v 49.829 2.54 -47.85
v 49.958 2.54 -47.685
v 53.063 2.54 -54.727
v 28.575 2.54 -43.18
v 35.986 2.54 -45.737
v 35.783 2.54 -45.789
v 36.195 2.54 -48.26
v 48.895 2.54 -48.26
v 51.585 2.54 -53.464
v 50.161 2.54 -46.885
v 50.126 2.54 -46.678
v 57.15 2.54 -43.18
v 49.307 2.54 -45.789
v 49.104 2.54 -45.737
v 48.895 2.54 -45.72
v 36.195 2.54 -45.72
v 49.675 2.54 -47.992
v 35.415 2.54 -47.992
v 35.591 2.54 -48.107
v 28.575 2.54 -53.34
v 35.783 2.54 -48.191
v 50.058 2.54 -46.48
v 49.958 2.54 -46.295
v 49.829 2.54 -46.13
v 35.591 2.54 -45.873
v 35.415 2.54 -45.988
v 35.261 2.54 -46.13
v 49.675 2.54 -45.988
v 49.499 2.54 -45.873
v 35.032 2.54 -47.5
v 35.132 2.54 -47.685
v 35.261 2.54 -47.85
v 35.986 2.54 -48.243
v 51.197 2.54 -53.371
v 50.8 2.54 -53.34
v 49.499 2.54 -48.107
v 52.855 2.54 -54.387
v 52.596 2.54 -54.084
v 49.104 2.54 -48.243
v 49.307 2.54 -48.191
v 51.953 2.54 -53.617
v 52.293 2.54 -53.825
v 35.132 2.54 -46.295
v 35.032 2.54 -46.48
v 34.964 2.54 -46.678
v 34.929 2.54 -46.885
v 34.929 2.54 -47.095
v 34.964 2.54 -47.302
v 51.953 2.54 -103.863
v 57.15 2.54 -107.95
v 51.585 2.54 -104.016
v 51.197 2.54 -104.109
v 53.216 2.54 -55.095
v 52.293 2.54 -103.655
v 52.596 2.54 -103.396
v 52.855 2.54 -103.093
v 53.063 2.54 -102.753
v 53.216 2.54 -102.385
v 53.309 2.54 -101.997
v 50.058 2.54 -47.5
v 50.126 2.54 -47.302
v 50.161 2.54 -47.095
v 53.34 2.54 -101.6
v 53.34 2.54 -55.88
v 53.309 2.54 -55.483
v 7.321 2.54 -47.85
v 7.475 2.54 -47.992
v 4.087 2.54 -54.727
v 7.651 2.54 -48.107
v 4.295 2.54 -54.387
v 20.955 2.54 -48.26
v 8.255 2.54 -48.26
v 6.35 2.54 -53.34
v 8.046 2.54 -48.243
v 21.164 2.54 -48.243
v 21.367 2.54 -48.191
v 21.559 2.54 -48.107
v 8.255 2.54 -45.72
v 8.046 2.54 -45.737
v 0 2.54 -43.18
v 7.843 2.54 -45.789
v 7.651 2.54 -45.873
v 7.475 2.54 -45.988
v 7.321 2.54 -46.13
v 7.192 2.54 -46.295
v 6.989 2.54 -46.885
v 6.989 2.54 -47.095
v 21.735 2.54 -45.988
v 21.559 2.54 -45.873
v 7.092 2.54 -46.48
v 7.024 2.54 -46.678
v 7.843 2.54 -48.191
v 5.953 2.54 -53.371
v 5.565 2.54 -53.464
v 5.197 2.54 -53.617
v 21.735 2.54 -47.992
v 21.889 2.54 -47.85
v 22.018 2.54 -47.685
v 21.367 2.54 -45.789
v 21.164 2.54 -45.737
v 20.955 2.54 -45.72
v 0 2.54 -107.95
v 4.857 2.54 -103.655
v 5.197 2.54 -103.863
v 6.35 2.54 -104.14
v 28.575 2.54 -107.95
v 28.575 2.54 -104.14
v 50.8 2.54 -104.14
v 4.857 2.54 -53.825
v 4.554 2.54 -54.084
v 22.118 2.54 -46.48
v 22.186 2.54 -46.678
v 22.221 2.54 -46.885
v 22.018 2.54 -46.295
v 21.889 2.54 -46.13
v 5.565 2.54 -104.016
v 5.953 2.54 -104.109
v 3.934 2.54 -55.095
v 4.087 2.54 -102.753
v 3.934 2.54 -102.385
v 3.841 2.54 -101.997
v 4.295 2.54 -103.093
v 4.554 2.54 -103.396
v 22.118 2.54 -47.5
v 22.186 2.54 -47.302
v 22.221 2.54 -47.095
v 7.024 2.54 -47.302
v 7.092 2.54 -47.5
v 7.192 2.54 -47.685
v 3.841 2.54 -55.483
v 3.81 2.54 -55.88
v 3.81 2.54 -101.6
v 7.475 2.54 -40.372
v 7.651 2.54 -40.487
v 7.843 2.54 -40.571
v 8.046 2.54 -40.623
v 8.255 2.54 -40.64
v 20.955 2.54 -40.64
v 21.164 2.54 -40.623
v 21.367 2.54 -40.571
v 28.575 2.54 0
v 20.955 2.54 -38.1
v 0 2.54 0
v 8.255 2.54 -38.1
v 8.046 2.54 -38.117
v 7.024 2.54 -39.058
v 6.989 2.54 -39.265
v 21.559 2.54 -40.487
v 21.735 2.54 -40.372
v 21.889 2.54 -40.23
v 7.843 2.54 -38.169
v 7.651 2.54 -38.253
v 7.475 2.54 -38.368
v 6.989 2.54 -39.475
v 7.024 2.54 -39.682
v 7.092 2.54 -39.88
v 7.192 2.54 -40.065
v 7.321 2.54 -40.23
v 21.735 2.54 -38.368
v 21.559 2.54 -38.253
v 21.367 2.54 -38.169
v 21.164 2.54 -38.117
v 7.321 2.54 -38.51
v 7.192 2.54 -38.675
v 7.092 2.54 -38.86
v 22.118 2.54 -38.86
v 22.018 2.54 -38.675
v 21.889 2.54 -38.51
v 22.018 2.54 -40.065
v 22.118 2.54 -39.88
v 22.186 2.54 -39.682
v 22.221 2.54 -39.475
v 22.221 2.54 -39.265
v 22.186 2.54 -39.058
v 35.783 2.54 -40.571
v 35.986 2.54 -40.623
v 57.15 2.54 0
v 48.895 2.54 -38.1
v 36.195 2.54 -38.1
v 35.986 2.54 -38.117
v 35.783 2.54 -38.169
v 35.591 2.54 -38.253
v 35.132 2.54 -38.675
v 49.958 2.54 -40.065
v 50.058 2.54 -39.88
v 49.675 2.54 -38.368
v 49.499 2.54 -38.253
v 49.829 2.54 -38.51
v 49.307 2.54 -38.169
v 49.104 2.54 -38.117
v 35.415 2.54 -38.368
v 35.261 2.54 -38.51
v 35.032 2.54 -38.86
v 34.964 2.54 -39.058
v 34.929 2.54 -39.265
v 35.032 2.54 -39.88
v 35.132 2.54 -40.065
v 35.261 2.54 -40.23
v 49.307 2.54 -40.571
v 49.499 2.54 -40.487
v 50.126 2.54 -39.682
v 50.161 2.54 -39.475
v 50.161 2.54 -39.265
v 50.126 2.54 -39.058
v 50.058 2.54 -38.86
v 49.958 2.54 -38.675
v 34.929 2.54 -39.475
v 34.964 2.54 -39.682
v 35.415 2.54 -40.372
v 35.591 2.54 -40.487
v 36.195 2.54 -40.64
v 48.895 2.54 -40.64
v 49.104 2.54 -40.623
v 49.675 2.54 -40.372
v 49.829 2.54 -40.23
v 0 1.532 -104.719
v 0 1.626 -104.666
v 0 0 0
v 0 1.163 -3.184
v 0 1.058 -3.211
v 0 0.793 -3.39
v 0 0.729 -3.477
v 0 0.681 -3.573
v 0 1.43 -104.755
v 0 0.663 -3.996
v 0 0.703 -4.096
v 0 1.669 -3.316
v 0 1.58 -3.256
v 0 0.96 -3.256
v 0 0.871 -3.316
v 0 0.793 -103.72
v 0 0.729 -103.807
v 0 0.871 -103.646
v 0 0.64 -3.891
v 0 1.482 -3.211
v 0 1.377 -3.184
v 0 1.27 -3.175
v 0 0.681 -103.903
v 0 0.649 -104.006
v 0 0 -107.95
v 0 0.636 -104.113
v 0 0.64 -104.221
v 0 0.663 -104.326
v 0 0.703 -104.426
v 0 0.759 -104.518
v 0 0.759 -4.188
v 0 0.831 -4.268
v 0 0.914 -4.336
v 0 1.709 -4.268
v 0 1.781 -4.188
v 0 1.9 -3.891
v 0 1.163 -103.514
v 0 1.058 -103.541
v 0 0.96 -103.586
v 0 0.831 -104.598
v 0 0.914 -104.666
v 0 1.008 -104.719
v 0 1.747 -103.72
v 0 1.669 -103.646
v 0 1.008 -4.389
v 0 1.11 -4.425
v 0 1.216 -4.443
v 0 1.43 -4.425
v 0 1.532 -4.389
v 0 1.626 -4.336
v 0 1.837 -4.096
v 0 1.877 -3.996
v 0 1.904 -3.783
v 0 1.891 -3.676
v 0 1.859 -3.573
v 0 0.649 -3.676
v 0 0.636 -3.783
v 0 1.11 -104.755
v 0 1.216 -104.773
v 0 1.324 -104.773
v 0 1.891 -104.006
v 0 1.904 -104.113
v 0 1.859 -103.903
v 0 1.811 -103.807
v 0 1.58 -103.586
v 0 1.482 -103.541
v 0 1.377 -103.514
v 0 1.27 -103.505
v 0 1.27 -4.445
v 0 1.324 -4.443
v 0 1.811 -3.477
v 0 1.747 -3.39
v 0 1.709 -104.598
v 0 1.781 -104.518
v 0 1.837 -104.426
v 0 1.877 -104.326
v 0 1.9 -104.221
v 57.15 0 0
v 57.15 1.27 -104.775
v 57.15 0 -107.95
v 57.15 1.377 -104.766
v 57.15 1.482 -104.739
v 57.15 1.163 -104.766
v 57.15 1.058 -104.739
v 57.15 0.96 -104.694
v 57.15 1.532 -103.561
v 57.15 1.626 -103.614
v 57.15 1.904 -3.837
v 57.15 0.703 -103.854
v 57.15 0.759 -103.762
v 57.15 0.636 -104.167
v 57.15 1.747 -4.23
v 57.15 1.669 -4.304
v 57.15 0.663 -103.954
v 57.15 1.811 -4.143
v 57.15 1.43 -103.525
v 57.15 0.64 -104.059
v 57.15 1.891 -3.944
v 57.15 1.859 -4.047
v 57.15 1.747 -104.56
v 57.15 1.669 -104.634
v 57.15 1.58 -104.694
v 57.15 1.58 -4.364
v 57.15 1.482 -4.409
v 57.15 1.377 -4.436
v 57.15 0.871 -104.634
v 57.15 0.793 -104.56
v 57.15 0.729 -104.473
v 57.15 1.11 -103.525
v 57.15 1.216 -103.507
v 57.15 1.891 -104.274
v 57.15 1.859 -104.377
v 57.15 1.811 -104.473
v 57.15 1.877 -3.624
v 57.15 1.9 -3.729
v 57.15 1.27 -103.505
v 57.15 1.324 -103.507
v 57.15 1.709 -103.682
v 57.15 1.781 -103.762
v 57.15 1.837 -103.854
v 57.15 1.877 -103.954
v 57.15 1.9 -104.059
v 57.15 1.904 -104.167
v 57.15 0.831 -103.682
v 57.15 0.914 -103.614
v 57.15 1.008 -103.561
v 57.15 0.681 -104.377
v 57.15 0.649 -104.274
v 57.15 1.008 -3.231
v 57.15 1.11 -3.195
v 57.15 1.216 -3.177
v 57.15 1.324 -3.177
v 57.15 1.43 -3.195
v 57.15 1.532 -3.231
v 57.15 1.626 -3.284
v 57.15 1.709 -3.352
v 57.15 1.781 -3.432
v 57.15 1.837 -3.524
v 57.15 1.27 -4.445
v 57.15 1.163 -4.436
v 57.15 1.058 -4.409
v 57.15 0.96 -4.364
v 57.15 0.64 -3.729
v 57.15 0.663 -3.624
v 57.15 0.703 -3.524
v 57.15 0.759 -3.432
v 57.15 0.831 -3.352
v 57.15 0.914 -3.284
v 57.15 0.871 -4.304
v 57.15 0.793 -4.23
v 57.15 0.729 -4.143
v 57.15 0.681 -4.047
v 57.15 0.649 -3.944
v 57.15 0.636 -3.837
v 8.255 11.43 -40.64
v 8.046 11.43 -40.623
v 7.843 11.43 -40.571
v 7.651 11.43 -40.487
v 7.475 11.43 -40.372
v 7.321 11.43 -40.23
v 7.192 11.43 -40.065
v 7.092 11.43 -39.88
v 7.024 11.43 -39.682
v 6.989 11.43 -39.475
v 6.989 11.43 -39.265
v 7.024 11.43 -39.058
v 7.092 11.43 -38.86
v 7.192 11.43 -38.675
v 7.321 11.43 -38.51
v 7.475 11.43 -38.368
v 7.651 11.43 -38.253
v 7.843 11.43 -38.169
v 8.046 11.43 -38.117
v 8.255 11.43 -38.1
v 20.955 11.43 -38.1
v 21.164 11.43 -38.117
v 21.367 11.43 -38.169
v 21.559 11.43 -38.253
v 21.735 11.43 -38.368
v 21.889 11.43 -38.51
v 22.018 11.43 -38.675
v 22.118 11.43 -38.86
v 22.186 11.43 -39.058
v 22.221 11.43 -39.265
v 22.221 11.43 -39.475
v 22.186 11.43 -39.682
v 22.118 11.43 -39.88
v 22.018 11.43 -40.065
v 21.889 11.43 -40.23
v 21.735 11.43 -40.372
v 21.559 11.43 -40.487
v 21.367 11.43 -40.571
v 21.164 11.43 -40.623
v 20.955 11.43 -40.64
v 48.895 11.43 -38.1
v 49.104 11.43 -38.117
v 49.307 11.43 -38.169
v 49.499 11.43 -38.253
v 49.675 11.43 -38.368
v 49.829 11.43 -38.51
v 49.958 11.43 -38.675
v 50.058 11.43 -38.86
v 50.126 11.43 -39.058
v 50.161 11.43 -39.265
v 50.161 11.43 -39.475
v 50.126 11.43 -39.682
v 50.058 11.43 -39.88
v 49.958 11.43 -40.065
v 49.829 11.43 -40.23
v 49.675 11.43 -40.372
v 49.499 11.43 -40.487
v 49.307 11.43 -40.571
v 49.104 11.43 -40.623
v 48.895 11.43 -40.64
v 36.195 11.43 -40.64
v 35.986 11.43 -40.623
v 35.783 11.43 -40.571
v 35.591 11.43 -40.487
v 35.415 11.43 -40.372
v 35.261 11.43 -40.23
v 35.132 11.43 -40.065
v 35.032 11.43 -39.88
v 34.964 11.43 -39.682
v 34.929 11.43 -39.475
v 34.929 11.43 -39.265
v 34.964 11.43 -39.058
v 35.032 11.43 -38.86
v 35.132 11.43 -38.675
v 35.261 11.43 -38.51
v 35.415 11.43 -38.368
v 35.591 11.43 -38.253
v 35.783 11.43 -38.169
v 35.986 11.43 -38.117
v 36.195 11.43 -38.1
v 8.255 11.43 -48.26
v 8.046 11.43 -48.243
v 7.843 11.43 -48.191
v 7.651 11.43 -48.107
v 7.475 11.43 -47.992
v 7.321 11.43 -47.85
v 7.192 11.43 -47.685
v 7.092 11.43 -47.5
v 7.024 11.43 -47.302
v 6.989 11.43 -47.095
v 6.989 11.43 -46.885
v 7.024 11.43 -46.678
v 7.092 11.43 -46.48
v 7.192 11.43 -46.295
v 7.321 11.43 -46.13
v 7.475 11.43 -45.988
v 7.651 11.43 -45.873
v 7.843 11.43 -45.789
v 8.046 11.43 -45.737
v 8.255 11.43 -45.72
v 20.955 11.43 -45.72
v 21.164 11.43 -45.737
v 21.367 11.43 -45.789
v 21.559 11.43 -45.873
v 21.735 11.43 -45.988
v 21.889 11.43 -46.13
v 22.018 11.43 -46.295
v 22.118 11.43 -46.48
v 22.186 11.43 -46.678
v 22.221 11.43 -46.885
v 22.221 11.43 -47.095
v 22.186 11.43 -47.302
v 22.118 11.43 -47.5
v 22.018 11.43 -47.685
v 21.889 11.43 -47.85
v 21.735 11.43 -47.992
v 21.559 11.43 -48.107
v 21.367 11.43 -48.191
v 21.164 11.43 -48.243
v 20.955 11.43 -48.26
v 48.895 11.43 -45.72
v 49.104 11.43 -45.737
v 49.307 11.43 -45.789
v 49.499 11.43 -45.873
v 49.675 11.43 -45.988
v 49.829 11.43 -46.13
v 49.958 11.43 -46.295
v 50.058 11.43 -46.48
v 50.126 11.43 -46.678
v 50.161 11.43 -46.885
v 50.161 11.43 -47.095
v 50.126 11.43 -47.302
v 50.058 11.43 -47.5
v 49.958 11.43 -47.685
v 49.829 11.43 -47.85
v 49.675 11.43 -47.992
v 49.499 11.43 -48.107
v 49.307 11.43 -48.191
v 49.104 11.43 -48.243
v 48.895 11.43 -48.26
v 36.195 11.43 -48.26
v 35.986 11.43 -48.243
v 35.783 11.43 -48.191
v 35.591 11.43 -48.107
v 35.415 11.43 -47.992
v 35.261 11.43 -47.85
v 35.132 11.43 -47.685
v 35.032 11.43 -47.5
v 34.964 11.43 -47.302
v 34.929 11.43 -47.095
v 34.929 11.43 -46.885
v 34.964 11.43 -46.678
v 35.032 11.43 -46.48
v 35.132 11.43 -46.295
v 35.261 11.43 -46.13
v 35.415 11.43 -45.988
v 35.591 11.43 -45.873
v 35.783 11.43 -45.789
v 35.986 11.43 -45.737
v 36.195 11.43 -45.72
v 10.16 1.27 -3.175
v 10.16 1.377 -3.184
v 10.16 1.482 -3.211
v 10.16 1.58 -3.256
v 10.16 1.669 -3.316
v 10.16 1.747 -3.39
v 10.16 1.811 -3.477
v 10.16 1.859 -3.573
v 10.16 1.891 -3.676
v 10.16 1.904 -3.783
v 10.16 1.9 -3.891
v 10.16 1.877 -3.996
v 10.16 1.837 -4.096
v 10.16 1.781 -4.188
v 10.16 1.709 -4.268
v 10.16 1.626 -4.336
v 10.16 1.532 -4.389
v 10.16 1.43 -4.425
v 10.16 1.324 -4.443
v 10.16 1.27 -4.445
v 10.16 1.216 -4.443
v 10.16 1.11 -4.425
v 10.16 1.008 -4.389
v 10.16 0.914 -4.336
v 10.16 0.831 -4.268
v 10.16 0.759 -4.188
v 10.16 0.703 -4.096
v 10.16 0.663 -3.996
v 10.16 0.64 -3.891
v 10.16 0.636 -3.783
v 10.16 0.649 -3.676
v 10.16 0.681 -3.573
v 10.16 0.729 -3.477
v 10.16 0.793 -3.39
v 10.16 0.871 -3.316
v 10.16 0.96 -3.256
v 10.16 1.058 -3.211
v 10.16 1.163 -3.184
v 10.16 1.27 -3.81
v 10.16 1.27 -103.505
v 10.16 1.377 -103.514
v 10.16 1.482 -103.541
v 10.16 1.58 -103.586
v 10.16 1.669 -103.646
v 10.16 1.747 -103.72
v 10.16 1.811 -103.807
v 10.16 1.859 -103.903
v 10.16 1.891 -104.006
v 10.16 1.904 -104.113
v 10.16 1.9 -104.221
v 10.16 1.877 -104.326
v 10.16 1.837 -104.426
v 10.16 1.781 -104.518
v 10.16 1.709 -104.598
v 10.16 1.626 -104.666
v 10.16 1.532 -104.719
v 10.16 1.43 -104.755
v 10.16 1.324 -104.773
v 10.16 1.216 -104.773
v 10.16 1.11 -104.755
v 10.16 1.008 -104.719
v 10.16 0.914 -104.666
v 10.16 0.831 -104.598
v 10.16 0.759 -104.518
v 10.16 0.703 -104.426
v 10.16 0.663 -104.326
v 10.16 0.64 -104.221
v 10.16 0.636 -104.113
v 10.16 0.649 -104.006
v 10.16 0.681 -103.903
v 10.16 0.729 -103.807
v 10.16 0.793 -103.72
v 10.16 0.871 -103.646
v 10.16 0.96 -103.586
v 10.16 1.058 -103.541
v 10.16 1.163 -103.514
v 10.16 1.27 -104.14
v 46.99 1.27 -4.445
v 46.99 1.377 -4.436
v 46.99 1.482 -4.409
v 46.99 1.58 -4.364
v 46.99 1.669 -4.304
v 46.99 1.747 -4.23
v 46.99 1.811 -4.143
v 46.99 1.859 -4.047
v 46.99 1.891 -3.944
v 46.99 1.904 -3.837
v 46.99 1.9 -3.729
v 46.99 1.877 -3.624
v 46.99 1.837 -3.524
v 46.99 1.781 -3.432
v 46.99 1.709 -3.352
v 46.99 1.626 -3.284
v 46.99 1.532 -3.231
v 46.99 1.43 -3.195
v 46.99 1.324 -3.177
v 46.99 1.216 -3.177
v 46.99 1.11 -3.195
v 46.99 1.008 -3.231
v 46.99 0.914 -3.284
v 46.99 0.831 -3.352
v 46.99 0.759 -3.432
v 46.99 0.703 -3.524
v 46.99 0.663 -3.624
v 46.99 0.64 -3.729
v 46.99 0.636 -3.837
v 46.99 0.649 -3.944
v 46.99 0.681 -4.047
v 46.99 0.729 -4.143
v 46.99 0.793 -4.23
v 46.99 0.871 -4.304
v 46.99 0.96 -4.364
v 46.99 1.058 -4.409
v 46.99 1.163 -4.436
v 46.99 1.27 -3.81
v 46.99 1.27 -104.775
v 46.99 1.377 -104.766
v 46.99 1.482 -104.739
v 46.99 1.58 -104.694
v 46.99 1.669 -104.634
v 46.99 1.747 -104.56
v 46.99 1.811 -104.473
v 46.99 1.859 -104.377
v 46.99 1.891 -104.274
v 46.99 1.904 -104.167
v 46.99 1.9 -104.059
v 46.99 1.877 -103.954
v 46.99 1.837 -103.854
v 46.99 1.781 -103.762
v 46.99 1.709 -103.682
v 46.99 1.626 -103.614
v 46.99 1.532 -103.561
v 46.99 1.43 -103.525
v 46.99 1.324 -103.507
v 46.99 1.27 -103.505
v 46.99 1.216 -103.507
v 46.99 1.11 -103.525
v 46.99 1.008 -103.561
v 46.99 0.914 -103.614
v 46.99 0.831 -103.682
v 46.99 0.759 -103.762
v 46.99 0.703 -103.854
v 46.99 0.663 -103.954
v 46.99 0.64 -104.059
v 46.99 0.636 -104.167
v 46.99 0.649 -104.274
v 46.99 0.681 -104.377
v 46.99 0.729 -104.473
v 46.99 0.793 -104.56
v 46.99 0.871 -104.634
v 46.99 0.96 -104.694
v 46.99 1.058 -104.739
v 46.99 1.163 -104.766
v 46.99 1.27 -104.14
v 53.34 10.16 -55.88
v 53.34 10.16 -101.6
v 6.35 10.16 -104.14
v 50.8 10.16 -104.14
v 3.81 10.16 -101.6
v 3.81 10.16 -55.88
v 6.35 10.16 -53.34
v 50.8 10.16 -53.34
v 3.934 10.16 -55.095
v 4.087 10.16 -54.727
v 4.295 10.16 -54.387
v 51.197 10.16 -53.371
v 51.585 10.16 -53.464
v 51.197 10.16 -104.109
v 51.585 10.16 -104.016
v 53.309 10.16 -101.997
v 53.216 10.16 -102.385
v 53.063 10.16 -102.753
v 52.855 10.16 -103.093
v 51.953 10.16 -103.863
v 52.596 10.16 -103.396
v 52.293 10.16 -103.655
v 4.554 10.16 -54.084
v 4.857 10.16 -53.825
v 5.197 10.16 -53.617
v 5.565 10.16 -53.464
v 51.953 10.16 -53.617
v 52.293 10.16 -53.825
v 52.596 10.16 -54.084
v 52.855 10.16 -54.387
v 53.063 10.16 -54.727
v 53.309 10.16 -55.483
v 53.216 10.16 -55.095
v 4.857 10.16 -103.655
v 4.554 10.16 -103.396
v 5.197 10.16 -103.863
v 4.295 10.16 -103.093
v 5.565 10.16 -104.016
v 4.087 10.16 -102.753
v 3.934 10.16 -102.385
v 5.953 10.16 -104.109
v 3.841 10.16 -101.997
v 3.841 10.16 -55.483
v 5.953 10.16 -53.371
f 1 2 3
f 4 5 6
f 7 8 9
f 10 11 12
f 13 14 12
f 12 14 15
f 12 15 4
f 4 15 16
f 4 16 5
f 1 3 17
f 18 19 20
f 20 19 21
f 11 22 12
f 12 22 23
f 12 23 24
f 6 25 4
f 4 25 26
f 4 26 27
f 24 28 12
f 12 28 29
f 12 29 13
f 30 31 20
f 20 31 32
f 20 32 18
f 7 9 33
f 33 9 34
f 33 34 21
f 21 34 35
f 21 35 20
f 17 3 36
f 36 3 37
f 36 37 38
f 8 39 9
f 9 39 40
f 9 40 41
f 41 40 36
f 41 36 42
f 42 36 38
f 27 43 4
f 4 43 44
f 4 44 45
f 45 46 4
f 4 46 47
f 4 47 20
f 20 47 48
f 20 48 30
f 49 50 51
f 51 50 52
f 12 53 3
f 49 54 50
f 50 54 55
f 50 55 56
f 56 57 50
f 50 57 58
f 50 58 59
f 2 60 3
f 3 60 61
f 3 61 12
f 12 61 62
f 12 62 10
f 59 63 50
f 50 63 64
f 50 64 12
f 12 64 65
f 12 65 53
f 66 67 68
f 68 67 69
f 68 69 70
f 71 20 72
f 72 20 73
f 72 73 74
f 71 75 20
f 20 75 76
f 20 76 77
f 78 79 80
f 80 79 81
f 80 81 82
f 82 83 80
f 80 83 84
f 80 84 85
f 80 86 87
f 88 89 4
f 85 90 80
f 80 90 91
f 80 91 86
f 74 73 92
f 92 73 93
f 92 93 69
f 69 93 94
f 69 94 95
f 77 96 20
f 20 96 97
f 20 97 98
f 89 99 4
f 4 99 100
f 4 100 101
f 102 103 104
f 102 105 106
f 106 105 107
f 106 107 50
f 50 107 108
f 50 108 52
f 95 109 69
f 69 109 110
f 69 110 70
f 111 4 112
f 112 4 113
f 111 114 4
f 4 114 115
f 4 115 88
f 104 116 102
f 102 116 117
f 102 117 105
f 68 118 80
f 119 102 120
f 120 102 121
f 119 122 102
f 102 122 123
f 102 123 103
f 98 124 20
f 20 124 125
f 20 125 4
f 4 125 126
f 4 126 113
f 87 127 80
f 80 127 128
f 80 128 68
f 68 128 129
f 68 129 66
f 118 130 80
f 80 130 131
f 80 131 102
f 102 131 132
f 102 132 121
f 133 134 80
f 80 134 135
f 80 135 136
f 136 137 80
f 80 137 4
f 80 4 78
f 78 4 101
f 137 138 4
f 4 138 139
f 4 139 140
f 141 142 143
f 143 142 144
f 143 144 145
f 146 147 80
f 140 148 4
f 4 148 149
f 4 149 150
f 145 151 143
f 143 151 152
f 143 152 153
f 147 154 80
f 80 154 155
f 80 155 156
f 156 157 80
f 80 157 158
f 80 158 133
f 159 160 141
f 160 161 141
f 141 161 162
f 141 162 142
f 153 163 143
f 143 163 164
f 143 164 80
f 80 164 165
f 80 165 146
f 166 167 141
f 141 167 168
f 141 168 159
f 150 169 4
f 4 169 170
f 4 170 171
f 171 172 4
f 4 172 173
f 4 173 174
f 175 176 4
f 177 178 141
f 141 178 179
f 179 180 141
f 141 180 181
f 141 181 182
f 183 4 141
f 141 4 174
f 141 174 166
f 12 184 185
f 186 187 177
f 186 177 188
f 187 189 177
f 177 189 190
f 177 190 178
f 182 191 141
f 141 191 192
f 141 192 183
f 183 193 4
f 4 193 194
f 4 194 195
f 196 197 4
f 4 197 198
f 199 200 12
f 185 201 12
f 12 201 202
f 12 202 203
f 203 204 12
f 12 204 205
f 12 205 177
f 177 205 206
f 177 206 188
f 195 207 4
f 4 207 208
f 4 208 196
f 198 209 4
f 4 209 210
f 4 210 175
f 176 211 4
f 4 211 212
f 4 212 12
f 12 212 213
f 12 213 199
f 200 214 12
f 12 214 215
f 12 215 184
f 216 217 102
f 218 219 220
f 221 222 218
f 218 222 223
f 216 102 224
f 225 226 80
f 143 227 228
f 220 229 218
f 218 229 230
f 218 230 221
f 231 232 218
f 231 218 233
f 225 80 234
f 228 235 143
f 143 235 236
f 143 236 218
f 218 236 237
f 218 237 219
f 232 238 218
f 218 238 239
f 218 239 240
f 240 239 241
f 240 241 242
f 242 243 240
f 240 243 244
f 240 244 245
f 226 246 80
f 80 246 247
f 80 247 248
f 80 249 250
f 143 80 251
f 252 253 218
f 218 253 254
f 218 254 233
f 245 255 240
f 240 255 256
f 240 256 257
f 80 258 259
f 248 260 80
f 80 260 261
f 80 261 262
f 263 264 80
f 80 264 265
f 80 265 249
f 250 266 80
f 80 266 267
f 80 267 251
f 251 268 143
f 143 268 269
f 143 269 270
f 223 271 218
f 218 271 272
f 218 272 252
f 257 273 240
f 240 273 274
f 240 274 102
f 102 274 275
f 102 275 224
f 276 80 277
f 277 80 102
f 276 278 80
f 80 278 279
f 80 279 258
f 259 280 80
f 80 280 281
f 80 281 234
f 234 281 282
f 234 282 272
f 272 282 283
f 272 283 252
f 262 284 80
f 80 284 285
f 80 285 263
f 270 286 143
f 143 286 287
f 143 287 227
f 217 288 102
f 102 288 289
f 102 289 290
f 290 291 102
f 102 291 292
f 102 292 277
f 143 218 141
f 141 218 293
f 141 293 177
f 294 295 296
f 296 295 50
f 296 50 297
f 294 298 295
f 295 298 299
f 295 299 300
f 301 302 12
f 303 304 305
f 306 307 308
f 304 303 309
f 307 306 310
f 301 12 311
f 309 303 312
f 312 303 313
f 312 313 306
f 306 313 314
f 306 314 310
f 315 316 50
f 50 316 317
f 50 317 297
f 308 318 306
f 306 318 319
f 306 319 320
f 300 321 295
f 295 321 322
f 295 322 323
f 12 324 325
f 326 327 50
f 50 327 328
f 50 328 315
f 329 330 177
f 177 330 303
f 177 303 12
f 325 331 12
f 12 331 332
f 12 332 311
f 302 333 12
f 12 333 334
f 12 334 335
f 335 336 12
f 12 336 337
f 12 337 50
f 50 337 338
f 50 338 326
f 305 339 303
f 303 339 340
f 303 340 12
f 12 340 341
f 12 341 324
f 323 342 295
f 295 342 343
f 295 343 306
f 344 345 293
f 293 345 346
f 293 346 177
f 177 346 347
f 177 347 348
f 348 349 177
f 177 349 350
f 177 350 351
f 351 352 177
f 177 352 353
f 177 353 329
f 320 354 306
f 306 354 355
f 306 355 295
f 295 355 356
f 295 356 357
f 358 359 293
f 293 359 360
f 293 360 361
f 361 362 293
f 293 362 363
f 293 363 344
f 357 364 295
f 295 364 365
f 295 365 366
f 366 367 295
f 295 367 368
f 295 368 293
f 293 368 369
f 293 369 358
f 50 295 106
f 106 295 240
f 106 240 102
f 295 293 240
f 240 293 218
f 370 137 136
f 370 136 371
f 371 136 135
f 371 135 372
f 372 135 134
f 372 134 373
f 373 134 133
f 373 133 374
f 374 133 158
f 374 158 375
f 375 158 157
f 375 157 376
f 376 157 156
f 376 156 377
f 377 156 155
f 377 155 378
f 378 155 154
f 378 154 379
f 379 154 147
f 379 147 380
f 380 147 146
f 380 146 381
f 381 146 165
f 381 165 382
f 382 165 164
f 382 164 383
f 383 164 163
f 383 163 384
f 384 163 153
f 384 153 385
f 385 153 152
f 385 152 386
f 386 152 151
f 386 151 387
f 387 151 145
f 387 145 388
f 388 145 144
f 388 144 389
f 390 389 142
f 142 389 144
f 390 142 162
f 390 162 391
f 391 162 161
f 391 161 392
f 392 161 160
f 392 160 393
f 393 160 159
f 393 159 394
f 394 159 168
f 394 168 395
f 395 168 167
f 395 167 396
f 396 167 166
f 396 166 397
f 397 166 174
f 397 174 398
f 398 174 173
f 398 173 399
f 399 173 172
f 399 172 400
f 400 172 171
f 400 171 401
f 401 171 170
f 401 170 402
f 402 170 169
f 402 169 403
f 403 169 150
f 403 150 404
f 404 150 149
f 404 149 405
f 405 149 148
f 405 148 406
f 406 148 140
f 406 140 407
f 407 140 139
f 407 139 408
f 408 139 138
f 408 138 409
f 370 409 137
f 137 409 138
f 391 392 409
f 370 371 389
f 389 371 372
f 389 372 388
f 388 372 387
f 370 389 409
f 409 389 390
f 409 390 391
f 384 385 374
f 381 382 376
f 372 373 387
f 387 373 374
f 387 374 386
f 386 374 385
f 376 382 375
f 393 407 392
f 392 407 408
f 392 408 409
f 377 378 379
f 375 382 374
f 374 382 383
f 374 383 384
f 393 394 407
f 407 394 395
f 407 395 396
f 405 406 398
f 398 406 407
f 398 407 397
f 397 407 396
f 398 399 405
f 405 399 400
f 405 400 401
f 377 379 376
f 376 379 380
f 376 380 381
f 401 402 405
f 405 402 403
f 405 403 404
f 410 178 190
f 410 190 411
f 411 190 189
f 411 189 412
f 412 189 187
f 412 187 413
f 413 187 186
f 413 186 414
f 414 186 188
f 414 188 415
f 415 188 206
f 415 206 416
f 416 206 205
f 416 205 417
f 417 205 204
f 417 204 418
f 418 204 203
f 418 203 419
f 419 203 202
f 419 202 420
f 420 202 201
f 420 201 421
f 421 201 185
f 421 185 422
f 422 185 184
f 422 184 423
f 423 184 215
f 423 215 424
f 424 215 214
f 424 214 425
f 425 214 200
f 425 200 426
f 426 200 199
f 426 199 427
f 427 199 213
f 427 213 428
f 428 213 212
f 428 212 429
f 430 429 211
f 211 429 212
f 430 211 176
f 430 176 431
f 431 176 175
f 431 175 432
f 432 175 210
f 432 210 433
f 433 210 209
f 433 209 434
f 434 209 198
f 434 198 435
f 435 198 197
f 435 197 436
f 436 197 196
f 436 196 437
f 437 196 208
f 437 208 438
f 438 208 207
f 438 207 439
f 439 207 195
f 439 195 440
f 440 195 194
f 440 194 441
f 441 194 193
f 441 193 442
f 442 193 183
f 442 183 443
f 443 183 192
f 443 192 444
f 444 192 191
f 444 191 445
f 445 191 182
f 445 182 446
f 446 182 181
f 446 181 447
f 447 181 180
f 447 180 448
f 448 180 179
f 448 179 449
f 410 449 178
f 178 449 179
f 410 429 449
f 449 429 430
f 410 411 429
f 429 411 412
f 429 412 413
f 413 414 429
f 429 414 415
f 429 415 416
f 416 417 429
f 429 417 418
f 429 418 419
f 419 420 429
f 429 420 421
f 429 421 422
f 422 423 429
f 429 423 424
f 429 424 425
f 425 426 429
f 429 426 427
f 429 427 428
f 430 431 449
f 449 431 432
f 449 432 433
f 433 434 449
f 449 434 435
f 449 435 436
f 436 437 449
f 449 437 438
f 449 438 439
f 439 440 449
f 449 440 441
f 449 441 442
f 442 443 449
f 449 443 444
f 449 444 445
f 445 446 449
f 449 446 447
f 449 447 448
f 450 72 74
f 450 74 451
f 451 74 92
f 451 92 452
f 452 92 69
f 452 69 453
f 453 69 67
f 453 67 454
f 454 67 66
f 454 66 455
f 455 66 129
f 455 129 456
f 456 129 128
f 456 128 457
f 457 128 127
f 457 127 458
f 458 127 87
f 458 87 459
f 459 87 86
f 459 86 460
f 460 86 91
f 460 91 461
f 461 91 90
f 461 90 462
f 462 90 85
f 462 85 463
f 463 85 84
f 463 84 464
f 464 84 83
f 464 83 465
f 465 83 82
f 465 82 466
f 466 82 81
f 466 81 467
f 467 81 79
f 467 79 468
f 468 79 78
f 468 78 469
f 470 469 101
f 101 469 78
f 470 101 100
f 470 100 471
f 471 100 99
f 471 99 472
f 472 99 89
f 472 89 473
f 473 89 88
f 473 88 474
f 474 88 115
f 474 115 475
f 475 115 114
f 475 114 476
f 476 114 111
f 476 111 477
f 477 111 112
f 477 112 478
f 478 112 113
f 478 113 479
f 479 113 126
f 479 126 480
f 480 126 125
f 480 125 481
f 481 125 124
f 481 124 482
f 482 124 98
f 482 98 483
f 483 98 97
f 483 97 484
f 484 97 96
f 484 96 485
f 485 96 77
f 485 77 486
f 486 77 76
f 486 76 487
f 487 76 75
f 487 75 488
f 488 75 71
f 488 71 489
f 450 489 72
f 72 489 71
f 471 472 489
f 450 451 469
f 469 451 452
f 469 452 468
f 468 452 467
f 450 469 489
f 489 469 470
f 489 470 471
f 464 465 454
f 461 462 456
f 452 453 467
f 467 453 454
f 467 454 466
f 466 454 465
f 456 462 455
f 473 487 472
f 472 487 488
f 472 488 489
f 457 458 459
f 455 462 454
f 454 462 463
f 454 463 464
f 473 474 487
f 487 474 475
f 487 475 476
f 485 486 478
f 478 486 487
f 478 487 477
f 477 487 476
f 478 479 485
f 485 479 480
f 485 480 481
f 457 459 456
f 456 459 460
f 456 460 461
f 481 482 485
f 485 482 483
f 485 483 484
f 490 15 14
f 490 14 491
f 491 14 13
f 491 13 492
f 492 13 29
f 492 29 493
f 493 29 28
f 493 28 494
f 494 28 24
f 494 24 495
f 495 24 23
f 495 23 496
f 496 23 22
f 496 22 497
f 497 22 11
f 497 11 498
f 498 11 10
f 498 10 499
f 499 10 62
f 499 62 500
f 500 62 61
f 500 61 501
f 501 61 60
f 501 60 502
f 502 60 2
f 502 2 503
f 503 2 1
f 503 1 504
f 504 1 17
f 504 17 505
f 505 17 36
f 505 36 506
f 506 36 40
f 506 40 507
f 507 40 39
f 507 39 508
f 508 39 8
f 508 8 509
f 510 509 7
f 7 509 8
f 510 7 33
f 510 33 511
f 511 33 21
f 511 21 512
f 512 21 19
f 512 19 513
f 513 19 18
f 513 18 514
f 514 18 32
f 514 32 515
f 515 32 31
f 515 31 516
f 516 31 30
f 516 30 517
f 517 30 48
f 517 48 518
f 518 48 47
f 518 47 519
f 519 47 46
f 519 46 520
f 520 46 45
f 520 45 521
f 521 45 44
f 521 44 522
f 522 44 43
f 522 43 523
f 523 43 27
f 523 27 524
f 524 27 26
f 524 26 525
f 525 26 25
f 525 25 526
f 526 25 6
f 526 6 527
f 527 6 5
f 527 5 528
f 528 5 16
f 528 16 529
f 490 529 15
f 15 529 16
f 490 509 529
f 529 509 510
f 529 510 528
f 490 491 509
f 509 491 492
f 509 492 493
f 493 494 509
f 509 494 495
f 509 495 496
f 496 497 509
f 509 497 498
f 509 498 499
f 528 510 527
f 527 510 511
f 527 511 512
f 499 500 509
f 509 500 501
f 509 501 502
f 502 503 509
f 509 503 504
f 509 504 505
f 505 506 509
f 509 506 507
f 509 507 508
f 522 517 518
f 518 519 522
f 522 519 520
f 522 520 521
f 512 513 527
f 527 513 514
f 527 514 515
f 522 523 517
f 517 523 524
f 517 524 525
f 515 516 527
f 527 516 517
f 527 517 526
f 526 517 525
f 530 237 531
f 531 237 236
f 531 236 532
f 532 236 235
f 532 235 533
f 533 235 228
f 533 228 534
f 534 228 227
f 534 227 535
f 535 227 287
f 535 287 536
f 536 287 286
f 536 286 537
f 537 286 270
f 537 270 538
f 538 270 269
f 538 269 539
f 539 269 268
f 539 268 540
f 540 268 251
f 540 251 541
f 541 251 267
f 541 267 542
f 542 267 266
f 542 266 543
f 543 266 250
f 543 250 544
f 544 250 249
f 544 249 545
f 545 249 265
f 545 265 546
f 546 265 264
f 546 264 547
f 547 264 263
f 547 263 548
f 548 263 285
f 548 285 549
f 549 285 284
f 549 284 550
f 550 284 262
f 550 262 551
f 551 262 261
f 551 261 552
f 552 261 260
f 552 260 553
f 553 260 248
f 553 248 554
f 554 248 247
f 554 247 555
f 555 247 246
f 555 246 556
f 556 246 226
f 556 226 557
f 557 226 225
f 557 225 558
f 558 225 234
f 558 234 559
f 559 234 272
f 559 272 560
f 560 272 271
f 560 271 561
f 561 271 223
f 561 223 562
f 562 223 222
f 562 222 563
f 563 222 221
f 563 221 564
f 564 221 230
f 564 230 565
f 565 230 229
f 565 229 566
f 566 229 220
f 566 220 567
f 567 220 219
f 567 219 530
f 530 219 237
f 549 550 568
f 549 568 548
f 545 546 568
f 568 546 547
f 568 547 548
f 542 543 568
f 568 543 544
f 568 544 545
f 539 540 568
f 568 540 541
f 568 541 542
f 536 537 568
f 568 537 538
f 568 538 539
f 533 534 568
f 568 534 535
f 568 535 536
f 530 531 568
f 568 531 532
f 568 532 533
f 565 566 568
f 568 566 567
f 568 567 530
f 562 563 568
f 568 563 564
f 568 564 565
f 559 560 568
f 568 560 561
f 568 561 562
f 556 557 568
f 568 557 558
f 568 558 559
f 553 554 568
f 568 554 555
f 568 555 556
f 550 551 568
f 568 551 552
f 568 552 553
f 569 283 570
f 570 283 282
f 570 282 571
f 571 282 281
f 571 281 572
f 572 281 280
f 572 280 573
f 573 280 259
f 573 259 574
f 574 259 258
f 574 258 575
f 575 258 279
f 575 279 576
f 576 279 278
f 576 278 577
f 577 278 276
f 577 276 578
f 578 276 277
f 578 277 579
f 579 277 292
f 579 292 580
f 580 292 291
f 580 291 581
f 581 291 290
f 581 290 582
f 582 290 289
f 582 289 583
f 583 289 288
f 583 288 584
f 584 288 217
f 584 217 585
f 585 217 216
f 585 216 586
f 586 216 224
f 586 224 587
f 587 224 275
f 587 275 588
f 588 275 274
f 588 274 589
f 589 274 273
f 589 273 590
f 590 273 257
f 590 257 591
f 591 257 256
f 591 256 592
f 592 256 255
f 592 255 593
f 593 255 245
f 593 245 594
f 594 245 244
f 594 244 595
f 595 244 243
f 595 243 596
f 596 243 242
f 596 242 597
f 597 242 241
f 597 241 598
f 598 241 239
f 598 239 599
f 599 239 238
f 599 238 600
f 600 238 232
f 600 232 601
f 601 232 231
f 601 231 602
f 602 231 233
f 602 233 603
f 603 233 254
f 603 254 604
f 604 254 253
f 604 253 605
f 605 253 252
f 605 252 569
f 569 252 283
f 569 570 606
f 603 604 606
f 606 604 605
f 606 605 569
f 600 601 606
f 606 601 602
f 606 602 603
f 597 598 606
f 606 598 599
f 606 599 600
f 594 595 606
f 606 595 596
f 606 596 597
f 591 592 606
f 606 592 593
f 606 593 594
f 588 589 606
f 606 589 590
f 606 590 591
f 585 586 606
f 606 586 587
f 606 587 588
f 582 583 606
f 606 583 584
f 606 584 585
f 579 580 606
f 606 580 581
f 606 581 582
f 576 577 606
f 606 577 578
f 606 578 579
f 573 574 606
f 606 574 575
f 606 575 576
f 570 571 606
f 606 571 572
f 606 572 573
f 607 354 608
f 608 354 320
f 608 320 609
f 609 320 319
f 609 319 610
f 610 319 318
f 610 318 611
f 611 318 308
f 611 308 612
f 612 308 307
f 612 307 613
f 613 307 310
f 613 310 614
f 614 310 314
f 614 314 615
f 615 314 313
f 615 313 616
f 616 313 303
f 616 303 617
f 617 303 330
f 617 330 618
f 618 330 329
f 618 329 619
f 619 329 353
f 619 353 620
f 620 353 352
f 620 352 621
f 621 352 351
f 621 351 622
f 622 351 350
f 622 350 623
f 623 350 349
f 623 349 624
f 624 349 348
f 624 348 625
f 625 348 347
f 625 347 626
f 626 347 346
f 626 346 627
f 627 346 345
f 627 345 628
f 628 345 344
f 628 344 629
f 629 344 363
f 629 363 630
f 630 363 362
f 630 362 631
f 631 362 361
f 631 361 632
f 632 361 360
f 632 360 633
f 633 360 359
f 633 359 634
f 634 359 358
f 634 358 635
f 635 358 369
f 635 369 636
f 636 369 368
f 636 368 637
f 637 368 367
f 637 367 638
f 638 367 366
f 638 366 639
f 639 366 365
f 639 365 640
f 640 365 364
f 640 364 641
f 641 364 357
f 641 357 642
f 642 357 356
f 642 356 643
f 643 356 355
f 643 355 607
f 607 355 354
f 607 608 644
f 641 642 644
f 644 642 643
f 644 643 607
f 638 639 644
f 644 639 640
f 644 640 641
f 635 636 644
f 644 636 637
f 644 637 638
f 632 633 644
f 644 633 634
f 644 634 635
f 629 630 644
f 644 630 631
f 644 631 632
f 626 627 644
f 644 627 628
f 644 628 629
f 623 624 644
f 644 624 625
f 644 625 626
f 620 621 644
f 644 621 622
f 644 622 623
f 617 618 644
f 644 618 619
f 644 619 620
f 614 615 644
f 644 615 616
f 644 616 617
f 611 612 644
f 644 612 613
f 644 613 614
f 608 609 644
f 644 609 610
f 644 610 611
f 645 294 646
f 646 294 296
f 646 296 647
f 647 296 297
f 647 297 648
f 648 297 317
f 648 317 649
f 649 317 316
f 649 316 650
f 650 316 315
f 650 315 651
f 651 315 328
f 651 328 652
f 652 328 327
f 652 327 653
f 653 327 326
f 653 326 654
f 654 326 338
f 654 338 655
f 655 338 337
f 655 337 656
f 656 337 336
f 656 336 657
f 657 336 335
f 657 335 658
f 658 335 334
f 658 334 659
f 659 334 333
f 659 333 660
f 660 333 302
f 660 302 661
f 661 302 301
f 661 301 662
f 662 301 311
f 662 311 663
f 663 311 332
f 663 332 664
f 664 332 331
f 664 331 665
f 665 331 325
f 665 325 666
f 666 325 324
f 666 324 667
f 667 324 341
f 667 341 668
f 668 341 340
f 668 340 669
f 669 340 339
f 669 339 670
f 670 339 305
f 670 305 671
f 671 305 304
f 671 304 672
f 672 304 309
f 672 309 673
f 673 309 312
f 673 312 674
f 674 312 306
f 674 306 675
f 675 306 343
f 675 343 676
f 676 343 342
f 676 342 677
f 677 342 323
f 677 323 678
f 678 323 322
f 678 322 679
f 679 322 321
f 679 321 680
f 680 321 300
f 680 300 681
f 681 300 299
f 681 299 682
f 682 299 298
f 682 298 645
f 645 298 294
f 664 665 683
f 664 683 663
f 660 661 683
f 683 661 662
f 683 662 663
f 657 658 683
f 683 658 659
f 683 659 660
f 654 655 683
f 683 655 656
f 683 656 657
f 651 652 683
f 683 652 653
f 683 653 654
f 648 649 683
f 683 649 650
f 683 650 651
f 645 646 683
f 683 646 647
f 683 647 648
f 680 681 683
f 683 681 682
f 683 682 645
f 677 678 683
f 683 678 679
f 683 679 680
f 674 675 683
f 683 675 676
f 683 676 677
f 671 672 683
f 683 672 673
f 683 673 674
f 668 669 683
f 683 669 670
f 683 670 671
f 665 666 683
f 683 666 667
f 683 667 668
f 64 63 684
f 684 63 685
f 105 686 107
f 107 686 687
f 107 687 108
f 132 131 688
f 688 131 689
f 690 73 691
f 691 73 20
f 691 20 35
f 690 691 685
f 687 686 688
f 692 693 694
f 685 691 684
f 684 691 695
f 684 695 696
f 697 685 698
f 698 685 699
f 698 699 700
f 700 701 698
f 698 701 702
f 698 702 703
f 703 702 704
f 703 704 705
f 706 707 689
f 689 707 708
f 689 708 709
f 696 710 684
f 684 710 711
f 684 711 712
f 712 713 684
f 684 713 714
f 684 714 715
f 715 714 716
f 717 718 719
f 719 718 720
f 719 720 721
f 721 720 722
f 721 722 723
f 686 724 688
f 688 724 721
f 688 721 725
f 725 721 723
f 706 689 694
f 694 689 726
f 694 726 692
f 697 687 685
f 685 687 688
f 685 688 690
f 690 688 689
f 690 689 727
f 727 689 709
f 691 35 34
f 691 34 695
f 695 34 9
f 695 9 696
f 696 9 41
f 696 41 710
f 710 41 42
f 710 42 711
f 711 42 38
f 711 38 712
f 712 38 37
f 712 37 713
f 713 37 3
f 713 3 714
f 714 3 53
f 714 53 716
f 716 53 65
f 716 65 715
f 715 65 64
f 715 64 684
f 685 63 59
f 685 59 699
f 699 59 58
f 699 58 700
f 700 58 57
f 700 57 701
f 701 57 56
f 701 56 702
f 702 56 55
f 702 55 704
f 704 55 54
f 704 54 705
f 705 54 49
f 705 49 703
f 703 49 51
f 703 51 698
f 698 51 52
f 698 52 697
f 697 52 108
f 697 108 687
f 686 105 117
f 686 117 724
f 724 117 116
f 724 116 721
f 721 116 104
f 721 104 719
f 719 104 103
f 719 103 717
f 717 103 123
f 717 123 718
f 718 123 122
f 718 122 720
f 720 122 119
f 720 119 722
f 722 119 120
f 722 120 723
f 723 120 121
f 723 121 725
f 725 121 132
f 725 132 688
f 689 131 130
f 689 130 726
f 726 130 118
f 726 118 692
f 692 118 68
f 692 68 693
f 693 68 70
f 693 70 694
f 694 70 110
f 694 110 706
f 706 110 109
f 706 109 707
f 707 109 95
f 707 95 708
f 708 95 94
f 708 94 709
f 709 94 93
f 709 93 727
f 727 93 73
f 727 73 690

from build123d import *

# Parameters (mm, degrees)
SKETCH1_W           = 57.15
SKETCH1_H           = 107.95
BOSS_EXTRUDE1_DEPTH = 2.54
BOSS_EXTRUDE2_DEPTH = 8.89
SKETCH4_R           = 0.635
CUT_EXTRUDE1_DEPTH  = 10.16
SKETCH5_W           = 49.53
SKETCH5_H           = 50.8
BOSS_EXTRUDE3_DEPTH = 7.62
FILLET1_R           = 2.54


with BuildPart() as part:
    # Sketch1 → Boss-Extrude1 (new body)
    with BuildSketch(Plane(origin=(0, 0, 0), x_dir=(1, 0, 0), z_dir=(0, 1, 0))):
        with Locations((28.575, 53.975)):
            Rectangle(SKETCH1_W, SKETCH1_H)
    extrude(amount=BOSS_EXTRUDE1_DEPTH)

    # Sketch2 → Boss-Extrude2 (add)
    with BuildSketch(Plane(origin=(0, 2.54, 0), x_dir=(1, 0, 0), z_dir=(0, 1, 0))):
        with BuildLine():
            Line((8.255, 40.64), (20.955, 40.64))
            ThreePointArc((20.955, 40.64), (22.225, 39.37), (20.955, 38.1))
            Line((20.955, 38.1), (8.255, 38.1))
            ThreePointArc((8.255, 38.1), (6.985, 39.37), (8.255, 40.64))
        make_face()
        with BuildLine():
            Line((48.895, 40.64), (36.195, 40.64))
            ThreePointArc((36.195, 40.64), (34.925, 39.37), (36.195, 38.1))
            Line((36.195, 38.1), (48.895, 38.1))
            ThreePointArc((48.895, 38.1), (50.165, 39.37), (48.895, 40.64))
        make_face()
        with BuildLine():
            Line((8.255, 48.26), (20.955, 48.26))
            ThreePointArc((20.955, 48.26), (22.225, 46.99), (20.955, 45.72))
            Line((20.955, 45.72), (8.255, 45.72))
            ThreePointArc((8.255, 45.72), (6.985, 46.99), (8.255, 48.26))
        make_face()
        with BuildLine():
            Line((48.895, 48.26), (36.195, 48.26))
            ThreePointArc((36.195, 48.26), (34.925, 46.99), (36.195, 45.72))
            Line((36.195, 45.72), (48.895, 45.72))
            ThreePointArc((48.895, 45.72), (50.165, 46.99), (48.895, 48.26))
        make_face()
    extrude(amount=BOSS_EXTRUDE2_DEPTH)

    # Sketch4 → Cut-Extrude1 (cut)
    with BuildSketch(Plane.ZY):
        with Locations((-104.14, 1.27)):
            Circle(SKETCH4_R)
        with Locations(Location((-3.81, 1.27, 0), (0, 0, 180))):
            Circle(SKETCH4_R)
    cut_extrude1 = extrude(amount=-CUT_EXTRUDE1_DEPTH, mode=Mode.SUBTRACT)

    # Mirror1: Cut-Extrude1 across plane
    add(cut_extrude1.mirror(Plane.ZY.offset(-28.575)), mode=Mode.SUBTRACT)

    # Sketch5 → Boss-Extrude3 (add)
    with BuildSketch(Plane(origin=(0, 2.54, 0), x_dir=(1, 0, 0), z_dir=(0, 1, 0))):
        with Locations((28.575, 78.74)):
            Rectangle(SKETCH5_W, SKETCH5_H)
    extrude(amount=BOSS_EXTRUDE3_DEPTH)

    # Fillet1
    fillet1_edges = [part.edges().sort_by_distance(p)[0] for p in [
        (53.34, 6.35, -53.34),
        (53.34, 6.35, -104.14),
        (3.81, 6.35, -104.14),
        (3.81, 6.35, -53.34),
    ]]
    fillet(fillet1_edges, radius=FILLET1_R)


solid = part.part
